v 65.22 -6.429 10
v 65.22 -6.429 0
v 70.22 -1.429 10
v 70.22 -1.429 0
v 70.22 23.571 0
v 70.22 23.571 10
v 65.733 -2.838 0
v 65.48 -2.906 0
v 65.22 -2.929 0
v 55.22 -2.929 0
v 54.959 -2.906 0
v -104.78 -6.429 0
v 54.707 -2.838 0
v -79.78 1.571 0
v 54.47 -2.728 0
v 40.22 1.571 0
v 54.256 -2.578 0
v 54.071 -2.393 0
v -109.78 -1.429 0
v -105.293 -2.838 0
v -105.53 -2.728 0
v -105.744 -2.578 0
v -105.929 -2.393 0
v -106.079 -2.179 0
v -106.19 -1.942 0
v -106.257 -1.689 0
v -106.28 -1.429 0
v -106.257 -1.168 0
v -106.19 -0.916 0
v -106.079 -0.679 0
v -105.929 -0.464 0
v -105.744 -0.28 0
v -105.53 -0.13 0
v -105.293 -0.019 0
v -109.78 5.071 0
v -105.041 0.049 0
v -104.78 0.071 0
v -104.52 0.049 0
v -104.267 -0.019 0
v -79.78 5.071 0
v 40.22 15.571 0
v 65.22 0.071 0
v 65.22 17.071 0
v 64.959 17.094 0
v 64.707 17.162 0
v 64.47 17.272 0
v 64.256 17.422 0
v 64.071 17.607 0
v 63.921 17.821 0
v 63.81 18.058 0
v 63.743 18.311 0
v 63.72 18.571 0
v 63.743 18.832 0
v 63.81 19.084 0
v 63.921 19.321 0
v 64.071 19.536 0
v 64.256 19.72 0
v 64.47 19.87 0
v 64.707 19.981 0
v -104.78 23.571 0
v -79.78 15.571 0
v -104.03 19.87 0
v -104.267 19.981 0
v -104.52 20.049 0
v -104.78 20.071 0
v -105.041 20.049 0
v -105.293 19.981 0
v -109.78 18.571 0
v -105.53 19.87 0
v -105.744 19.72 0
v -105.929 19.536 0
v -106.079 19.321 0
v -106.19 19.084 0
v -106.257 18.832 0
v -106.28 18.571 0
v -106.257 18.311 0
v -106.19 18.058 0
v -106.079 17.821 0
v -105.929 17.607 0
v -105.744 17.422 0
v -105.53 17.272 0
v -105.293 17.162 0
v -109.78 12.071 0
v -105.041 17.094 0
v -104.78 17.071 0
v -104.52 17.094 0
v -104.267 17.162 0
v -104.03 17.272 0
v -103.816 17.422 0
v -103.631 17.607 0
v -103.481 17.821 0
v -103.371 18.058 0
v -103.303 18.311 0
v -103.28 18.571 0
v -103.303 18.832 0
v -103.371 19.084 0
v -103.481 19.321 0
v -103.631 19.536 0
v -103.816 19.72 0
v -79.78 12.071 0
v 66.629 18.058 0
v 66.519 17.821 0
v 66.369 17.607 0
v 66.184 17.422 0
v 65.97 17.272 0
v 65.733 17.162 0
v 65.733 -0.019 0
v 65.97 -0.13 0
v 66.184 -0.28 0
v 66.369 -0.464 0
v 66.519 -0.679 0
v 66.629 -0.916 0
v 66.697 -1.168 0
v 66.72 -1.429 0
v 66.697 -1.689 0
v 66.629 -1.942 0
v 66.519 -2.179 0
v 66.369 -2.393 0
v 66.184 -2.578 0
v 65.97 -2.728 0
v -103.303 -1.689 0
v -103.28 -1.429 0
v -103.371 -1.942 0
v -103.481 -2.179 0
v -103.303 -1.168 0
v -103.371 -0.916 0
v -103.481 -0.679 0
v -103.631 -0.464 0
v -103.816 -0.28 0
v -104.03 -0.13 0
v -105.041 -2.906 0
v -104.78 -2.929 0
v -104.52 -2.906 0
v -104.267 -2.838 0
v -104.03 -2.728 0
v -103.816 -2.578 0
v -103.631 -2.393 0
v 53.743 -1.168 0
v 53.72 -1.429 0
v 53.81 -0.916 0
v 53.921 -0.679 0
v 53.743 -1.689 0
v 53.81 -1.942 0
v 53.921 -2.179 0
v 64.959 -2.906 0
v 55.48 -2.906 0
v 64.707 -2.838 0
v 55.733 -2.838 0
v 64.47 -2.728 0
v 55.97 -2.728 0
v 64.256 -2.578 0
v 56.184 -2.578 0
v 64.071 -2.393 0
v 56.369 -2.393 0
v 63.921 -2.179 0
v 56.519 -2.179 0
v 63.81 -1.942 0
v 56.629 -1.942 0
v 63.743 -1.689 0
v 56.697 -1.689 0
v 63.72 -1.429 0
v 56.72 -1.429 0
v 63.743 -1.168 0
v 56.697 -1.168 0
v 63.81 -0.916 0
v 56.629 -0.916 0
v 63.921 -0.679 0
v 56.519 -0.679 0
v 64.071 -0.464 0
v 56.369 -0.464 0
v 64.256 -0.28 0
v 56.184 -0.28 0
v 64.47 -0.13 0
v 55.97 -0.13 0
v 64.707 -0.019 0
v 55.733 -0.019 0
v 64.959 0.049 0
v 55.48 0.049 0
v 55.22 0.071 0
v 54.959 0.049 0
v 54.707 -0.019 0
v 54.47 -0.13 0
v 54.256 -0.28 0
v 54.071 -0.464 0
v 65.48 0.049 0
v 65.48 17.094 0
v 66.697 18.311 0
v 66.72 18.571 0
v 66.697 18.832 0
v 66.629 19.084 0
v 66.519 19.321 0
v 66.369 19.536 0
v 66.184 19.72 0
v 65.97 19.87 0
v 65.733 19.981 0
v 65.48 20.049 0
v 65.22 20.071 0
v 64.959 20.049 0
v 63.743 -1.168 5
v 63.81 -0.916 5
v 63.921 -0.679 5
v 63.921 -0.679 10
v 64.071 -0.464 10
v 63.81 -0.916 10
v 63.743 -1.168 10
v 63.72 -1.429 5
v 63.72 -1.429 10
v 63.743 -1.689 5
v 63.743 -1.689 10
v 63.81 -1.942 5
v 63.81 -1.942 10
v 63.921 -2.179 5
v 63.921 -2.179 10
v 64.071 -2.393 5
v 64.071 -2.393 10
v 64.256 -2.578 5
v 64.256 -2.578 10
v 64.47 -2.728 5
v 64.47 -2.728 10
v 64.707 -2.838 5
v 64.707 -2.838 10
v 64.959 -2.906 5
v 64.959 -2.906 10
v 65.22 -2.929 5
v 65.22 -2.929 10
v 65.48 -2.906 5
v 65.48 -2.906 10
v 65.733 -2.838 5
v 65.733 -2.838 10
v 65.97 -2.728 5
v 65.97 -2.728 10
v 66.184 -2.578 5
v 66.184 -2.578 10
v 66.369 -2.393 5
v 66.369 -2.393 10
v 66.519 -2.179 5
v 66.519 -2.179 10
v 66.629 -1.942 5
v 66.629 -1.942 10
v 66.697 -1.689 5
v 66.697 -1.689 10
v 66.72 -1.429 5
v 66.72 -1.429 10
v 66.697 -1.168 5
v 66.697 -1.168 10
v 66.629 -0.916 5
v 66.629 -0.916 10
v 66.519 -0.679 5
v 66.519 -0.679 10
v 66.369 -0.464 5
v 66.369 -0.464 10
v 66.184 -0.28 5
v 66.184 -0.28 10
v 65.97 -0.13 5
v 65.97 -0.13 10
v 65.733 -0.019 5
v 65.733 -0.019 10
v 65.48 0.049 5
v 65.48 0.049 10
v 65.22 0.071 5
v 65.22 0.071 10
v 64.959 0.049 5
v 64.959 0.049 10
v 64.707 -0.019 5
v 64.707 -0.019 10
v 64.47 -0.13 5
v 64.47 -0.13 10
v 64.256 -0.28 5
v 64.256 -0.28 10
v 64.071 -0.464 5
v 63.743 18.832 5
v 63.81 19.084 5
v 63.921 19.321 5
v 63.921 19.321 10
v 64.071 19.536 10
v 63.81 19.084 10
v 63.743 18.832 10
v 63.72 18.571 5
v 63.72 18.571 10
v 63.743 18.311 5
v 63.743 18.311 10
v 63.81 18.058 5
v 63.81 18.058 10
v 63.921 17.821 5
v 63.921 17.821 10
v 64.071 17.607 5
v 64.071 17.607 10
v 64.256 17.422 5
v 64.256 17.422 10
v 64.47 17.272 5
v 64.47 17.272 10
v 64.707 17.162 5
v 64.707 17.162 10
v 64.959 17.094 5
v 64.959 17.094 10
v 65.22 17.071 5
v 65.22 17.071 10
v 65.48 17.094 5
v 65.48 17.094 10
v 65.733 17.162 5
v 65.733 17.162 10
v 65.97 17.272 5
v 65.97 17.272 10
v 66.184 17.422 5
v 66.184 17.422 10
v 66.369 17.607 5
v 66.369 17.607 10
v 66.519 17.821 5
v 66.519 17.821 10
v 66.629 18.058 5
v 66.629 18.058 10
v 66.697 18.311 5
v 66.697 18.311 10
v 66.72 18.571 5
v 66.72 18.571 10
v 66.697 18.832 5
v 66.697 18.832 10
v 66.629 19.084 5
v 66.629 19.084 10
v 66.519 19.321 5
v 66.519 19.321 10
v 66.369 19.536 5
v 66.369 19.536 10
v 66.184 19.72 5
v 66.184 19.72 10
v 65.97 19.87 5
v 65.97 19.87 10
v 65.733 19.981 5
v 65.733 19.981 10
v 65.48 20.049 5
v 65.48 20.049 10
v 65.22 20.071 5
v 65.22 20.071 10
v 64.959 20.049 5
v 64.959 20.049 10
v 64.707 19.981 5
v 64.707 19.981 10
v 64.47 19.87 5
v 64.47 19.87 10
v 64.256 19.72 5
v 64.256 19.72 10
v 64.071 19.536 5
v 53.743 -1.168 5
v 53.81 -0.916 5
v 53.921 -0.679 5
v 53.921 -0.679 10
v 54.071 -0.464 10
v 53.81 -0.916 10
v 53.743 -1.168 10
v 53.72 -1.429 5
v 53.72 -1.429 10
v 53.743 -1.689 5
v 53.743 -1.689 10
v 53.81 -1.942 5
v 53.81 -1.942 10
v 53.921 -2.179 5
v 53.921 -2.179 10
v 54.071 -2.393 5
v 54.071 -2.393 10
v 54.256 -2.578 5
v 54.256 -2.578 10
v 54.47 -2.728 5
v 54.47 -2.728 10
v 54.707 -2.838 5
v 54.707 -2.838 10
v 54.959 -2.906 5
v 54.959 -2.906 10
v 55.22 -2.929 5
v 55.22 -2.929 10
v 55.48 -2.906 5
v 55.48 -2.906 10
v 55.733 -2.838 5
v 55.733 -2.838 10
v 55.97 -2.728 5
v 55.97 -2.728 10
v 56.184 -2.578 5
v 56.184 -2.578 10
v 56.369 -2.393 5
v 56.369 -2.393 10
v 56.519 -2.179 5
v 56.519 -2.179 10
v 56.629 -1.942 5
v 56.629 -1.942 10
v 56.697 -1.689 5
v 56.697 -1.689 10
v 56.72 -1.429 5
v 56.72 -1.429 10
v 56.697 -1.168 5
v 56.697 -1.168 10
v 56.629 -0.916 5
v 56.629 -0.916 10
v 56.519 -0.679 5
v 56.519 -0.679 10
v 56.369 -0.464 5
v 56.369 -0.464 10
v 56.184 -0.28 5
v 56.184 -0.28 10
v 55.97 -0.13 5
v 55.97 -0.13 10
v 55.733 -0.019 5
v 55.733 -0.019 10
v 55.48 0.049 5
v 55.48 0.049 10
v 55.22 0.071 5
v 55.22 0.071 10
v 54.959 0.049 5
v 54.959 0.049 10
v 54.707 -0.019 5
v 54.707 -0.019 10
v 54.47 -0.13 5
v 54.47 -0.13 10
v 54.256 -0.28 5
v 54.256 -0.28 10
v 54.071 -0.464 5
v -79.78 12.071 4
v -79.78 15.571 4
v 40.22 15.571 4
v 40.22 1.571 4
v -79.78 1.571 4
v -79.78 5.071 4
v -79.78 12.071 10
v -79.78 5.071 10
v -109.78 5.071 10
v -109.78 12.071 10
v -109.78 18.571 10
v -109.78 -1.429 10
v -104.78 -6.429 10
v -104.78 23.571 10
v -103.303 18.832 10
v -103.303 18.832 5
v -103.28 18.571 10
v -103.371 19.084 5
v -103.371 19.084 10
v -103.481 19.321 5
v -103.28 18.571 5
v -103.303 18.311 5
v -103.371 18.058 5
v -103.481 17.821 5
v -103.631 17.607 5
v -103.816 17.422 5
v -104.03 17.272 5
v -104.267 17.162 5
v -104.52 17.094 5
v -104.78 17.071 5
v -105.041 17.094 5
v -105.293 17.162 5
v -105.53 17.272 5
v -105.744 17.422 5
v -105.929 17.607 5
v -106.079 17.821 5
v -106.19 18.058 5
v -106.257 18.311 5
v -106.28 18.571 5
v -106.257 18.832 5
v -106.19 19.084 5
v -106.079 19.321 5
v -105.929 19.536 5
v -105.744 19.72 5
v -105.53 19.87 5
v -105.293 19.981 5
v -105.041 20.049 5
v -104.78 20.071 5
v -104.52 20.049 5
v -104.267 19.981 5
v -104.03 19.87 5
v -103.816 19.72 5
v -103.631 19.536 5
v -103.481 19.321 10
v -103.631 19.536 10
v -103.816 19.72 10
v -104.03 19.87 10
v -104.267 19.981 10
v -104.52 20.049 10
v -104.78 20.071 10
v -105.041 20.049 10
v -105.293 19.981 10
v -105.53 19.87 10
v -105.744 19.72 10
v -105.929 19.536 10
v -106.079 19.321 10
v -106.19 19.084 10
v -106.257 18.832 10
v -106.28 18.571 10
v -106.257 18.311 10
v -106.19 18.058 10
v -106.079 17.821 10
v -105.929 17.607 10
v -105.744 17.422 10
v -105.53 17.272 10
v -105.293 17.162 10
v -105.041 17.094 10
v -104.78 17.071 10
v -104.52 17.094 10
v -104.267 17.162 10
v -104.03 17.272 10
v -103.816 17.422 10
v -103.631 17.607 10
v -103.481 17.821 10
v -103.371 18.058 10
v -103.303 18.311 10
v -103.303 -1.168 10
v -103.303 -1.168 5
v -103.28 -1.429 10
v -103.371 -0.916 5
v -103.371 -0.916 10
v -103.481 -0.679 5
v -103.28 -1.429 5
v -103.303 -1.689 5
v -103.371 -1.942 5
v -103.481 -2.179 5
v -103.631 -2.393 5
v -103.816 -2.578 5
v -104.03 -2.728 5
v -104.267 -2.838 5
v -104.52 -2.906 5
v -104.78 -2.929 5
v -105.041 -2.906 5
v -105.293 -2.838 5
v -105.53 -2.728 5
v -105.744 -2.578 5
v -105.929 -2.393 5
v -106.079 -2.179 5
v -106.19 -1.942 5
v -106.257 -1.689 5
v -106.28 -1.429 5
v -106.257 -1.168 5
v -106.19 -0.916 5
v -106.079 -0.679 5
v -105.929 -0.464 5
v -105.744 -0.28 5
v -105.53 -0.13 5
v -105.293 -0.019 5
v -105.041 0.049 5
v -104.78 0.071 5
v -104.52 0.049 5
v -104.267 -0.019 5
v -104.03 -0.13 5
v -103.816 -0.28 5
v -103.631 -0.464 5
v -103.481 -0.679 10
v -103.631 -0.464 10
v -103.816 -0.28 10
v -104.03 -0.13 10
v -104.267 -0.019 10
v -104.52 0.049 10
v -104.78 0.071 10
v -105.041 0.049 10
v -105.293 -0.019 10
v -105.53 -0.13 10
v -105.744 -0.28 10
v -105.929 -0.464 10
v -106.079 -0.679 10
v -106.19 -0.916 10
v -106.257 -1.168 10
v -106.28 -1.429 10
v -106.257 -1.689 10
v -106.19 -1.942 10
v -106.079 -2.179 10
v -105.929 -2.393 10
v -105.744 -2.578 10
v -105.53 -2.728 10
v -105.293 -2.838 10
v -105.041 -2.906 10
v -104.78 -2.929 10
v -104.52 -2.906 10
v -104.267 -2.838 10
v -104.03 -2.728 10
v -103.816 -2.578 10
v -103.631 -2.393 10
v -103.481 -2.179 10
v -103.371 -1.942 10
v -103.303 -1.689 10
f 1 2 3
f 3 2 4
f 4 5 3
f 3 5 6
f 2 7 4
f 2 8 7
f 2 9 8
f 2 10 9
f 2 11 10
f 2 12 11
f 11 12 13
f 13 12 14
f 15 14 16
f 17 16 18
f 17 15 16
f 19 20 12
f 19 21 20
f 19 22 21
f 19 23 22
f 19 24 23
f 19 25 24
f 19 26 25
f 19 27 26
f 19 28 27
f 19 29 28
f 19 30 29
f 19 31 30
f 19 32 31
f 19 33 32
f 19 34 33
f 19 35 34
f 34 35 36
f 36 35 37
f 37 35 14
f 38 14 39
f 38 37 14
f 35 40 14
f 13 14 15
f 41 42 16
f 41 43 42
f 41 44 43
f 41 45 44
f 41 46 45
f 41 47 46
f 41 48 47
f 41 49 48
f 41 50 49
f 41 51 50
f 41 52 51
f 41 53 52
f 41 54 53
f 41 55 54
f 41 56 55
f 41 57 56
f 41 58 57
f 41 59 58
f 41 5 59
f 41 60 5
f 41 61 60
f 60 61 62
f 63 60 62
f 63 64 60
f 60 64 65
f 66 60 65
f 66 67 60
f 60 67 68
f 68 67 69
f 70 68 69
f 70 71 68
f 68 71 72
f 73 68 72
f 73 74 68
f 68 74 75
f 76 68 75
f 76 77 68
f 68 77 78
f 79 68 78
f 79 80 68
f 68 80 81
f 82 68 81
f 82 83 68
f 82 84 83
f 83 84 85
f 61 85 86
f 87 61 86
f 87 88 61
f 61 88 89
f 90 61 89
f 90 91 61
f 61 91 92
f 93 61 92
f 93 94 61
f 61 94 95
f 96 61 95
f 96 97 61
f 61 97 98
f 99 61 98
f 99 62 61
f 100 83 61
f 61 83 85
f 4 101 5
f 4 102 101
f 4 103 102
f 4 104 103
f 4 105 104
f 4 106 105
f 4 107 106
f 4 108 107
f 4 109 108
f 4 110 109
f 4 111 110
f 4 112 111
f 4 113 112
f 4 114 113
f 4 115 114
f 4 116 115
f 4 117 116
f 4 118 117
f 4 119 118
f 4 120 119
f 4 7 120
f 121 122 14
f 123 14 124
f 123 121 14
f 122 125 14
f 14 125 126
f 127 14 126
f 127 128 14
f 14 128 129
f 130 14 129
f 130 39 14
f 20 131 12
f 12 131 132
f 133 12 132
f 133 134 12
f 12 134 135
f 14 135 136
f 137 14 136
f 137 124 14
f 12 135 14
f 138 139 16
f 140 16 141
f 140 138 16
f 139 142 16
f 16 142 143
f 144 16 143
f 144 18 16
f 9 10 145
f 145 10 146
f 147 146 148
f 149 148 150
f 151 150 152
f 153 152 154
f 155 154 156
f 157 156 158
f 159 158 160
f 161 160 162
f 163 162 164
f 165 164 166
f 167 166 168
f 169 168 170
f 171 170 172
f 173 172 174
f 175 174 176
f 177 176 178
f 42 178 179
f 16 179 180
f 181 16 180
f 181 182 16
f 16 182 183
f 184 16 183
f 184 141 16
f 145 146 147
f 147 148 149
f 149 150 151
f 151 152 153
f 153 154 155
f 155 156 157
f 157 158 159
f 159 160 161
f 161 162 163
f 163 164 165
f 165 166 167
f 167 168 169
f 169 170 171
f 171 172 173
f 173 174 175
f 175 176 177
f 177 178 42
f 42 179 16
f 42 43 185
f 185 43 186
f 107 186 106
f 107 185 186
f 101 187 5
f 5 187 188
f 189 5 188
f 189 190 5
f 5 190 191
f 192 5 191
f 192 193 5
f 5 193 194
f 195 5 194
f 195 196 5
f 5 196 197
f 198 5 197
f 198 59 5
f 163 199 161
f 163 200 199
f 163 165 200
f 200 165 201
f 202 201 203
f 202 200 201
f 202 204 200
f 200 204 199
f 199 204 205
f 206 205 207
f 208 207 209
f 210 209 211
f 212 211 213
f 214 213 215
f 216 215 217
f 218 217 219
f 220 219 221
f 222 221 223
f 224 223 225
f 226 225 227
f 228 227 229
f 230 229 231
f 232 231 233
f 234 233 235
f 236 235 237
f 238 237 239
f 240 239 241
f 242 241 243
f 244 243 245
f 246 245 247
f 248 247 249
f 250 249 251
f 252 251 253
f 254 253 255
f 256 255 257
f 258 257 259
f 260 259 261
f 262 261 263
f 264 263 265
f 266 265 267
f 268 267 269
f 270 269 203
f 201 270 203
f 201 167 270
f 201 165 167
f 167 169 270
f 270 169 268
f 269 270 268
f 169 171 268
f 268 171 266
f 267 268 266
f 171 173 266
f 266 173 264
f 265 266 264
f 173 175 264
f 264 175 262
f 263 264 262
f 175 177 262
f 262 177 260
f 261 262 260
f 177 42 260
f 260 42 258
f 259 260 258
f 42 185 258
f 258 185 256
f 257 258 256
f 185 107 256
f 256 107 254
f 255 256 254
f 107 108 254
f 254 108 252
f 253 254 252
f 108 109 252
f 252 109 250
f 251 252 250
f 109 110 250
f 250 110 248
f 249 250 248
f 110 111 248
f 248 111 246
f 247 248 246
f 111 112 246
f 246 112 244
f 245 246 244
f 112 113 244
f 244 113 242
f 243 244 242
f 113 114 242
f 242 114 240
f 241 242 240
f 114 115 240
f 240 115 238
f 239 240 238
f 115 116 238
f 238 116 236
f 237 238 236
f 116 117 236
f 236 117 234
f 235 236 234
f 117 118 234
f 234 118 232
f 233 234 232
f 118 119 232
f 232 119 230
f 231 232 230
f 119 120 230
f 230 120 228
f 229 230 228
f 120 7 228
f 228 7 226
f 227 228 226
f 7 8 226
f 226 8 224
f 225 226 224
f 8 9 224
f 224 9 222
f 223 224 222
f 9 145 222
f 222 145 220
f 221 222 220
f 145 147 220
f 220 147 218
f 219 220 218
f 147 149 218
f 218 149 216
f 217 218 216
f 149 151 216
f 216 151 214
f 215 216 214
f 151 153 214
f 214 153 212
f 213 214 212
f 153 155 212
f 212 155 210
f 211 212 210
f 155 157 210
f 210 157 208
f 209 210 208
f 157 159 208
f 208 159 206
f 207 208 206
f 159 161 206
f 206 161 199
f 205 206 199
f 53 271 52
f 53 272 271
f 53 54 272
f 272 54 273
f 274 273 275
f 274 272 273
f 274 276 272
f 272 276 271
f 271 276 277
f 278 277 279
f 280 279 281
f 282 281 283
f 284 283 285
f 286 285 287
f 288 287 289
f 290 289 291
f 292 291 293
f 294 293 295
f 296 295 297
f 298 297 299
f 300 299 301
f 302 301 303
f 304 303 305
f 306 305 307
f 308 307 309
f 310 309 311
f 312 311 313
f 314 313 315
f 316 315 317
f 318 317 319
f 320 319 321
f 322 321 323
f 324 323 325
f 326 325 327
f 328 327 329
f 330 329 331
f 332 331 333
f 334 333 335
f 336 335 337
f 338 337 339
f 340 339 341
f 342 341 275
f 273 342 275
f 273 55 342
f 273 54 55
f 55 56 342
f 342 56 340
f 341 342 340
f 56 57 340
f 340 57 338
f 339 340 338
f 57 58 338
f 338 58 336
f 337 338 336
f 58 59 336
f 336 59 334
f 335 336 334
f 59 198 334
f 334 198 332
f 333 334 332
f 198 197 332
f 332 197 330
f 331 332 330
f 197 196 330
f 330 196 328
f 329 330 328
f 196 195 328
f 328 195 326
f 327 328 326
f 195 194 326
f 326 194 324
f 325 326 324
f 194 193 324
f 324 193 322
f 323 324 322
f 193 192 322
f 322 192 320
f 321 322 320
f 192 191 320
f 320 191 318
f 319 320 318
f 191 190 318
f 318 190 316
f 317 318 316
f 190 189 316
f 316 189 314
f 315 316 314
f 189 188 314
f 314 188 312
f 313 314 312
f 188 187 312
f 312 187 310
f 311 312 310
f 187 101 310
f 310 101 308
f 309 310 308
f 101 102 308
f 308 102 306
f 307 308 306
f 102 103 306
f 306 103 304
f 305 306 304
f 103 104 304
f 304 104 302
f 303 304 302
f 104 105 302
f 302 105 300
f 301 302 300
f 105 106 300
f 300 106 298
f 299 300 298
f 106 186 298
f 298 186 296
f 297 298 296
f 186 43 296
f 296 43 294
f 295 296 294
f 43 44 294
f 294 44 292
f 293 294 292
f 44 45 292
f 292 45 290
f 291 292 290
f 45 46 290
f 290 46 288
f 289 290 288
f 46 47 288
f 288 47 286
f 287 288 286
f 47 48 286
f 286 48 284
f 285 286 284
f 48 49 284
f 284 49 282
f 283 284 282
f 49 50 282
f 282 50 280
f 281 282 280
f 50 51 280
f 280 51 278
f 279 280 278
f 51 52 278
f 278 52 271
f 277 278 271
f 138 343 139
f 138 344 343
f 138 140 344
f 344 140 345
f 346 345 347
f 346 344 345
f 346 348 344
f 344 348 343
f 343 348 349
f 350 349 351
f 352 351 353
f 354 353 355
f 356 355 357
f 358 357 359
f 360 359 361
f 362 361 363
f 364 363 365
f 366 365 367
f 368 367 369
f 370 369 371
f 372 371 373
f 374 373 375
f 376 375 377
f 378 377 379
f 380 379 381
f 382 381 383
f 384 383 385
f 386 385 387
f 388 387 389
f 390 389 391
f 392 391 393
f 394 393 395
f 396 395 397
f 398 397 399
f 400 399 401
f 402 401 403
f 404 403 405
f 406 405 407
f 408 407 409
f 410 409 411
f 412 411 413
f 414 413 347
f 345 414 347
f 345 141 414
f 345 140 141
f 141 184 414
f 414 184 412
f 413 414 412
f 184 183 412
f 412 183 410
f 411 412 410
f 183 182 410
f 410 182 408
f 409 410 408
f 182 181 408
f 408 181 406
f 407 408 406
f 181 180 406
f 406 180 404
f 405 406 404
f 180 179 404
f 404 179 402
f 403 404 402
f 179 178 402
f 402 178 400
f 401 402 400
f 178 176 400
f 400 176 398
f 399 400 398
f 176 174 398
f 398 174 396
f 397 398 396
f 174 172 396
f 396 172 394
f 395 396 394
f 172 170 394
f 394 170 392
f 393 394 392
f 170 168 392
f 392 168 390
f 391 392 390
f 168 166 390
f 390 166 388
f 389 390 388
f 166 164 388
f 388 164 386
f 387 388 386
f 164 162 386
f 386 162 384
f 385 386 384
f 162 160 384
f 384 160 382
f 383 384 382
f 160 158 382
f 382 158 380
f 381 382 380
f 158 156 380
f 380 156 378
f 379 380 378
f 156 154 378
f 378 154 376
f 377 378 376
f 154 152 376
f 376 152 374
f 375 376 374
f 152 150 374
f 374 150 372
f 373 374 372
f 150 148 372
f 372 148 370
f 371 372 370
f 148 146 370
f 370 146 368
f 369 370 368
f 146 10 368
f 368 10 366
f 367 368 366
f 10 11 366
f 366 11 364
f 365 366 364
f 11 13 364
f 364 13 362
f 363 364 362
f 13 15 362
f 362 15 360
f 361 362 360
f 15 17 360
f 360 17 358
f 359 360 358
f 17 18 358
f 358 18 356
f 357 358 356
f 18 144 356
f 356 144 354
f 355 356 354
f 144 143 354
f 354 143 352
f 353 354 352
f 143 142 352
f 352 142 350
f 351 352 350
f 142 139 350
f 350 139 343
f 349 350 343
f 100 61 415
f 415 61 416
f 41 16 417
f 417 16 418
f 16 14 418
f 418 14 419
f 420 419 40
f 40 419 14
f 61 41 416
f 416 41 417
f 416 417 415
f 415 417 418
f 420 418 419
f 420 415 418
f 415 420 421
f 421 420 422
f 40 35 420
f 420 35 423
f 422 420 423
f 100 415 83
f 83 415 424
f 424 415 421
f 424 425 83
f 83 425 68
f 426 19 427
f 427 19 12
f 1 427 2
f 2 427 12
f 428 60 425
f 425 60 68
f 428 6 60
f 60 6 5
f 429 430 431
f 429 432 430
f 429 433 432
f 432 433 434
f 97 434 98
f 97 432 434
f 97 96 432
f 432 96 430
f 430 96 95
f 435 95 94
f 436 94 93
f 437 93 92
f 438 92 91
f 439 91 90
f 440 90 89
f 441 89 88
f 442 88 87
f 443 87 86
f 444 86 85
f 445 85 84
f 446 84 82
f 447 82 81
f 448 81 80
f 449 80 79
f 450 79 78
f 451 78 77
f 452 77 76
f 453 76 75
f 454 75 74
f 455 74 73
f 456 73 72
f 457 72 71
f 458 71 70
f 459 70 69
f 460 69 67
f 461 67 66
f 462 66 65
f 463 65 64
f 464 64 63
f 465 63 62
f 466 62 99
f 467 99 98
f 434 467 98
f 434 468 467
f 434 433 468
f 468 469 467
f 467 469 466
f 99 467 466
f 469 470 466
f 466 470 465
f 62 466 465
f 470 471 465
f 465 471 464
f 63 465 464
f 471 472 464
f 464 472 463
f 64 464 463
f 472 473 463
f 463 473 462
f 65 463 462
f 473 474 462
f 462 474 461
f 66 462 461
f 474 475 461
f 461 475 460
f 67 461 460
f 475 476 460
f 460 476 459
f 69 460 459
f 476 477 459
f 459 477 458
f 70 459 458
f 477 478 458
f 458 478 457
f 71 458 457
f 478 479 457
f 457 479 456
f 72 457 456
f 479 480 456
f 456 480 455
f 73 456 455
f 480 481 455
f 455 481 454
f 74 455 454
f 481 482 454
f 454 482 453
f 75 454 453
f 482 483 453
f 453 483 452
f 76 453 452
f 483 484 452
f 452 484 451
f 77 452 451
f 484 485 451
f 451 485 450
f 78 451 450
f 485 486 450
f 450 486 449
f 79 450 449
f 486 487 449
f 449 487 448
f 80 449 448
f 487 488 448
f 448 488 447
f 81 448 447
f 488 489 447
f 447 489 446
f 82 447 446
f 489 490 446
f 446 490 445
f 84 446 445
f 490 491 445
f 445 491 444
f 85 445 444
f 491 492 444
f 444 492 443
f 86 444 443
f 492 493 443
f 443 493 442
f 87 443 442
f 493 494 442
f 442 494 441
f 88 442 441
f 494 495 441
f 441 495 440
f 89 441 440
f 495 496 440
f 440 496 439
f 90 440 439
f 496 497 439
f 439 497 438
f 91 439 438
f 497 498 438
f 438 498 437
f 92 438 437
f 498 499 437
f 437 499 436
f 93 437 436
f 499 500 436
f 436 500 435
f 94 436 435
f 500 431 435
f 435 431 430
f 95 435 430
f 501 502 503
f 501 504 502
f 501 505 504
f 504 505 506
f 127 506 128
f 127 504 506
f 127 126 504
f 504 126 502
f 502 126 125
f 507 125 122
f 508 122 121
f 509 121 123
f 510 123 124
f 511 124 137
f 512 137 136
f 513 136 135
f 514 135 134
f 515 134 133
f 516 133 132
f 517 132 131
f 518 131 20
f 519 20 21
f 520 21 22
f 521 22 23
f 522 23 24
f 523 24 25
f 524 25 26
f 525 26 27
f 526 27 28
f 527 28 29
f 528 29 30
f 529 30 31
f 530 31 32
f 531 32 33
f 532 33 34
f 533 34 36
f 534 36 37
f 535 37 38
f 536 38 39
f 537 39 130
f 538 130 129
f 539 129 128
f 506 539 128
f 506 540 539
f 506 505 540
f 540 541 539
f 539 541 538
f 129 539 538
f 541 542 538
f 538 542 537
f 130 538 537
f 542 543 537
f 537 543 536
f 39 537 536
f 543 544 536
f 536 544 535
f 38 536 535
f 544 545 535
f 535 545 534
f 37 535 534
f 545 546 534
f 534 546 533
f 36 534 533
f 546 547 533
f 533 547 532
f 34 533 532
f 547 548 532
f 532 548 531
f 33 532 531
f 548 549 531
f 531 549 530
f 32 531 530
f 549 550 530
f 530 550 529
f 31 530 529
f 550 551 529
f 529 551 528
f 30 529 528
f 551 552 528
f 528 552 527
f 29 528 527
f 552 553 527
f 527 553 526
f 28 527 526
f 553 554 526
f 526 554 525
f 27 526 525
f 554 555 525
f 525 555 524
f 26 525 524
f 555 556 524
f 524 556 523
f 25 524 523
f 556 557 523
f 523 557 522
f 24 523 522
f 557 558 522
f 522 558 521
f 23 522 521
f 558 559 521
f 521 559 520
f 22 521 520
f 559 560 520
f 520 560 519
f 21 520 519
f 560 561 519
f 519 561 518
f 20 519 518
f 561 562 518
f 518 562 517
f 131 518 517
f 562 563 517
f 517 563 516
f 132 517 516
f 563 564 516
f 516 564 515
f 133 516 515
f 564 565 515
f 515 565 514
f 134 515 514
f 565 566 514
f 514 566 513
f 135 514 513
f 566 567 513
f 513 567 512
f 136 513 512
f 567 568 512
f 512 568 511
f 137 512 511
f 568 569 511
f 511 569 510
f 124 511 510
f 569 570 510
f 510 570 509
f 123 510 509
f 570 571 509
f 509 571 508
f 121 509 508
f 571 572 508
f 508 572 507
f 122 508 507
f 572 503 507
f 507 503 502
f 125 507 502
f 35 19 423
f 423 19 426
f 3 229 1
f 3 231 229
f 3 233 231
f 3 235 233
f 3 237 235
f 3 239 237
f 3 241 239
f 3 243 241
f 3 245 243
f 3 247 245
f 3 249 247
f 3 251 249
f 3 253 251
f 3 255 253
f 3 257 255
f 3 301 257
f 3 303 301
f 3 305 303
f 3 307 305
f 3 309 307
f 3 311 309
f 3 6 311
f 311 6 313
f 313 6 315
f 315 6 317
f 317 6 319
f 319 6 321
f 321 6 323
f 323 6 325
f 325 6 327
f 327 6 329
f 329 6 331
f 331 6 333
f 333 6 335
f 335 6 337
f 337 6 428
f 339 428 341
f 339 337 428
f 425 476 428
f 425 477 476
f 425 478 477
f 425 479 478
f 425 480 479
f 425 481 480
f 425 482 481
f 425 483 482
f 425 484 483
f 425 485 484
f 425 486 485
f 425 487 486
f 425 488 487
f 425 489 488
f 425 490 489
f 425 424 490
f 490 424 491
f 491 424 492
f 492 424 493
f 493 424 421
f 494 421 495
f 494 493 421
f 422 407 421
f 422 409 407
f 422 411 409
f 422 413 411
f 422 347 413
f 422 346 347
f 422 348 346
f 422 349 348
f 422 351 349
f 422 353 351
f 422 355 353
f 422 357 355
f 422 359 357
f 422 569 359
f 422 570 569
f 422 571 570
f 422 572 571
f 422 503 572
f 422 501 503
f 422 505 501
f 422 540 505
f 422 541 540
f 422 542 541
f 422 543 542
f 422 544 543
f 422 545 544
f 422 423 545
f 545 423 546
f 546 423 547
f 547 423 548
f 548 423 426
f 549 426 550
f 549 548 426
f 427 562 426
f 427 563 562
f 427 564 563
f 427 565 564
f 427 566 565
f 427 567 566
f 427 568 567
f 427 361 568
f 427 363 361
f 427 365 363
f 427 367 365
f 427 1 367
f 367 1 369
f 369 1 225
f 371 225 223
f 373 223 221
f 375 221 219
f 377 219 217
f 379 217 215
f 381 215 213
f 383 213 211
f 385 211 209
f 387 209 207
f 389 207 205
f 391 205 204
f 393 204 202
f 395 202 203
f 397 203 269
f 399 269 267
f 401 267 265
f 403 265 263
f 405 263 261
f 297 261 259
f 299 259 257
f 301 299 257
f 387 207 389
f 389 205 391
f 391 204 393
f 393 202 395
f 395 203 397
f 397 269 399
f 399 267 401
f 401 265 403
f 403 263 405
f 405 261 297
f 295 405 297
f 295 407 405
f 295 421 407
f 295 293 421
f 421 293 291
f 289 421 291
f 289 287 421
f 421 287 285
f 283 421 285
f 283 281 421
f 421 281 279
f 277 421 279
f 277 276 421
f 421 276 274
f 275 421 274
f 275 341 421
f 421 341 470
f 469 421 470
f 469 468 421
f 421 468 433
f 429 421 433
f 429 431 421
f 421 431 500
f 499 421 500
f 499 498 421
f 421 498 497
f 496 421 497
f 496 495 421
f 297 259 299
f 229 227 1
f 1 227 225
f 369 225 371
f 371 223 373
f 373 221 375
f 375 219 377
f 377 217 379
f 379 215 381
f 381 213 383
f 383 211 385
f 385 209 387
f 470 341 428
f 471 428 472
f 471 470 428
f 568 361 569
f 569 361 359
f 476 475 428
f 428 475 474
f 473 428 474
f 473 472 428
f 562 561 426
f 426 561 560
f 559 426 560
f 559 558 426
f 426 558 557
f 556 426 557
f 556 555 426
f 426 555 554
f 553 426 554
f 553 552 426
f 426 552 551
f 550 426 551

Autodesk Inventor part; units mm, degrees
ref_plane "YZ Plane" through (0, 0, 0) normal (1, 0, 0) x (0, 1, 0)
ref_plane "XZ Plane" through (0, 0, 0) normal (0, 1, 0) x (-1, 0, 0)
ref_plane "XY Plane" through (0, 0, 0) normal (0, 0, 1) x (1, 0, 0)
sketch "Sketch1" plane through (0, 0, 0) normal (0, 0, 1) x (1, 0, 0)
  line L0 (-109.7802, 23.5714) -> (70.2198, 23.5714)
  line L1 (70.2198, 23.5714) -> (70.2198, -6.4286)
  line L2 (70.2198, -6.4286) -> (-109.7802, -6.4286)
  line L3 (-109.7802, -6.4286) -> (-109.7802, 23.5714)
  point P0 (0, 0)
  dimension "d0" = 180
  dimension "d1" = 30
extrude "Extrusion1" add sketch "Sketch1" along normal blind 10
sketch "Sketch2" plane through (0, 0, 10) normal (0, 0, 1) x (1, 0, 0)
  line L0 (-109.7802, 23.5714) -> (-109.7802, -6.4286) projected
  line L1 (-109.7802, -6.4286) -> (70.2198, -6.4286) projected
  line L2 (70.2198, 23.5714) -> (-109.7802, 23.5714) projected
  point P0 (0, 0)
  point P1 (-104.7802, 18.5714)
  point P2 (-104.7802, -1.4286)
  dimension "d4" = 5
  dimension "d5" = 5
  dimension "d6" = 5
  dimension "d7" = 5
hole "Hole1" at (-104.7802, 18.5714, 10) at (-104.7802, -1.4286, 10) direction (0, 0, -1) diameter 3 depth 10 tip angle 118
chamfer "Chamfer1" distance 5 angle 45 2 edges at (-109.7802, 23.5714, 5) (-109.7802, -6.4286, 5)
sketch "Sketch3" plane through (0, 0, 0) normal (0, 0, -1) x (-1, 0, 0)
  line L0 (109.7802, 18.5714) -> (109.7802, -1.4286) projected
  line L1 (109.7802, 12.0714) -> (79.7802, 12.0714)
  line L2 (79.7802, 12.0714) -> (79.7802, 5.0714)
  line L3 (79.7802, 5.0714) -> (109.7802, 5.0714)
  line L4 (109.7802, 5.0714) -> (109.7802, 12.0714)
  circle A0 centre (104.7802, 18.5714) radius 1.5 projected
  circle A1 centre (104.7802, -1.4286) radius 1.5 projected
  point P0 (0, 0)
  dimension "d18" = 5
  dimension "d19" = 5
  dimension "d20" = 30
extrude "Extrusion2" cut sketch "Sketch3" against normal blind 10 contours L0 L3 L2 L1
sketch "Sketch4" plane through (0, 0, 0) normal (0, 0, -1) x (-1, 0, 0)
  line L0 (-40.2198, 15.5714) -> (79.7802, 15.5714)
  line L1 (79.7802, 15.5714) -> (79.7802, 1.5714)
  line L2 (79.7802, 1.5714) -> (-40.2198, 1.5714)
  line L3 (-40.2198, 1.5714) -> (-40.2198, 15.5714)
  line L4 (-70.2198, 23.5714) -> (104.7802, 23.5714) projected
  line L5 (-70.2198, -6.4286) -> (104.7802, -6.4286) projected
  line L6 (79.7802, 5.0714) -> (79.7802, 12.0714) projected
  line L7 (-70.2198, 23.5714) -> (-70.2198, -6.4286) projected
  point P0 (0, 0)
  dimension "d23" = 8
  dimension "d24" = 8
  dimension "d25" = 30
extrude "Extrusion3" cut sketch "Sketch4" against normal blind 4
sketch "Sketch5" plane through (0, 0, 0) normal (0, 0, -1) x (-1, 0, 0)
  line L0 (104.7802, 23.5714) -> (-70.2198, 23.5714) projected
  line L1 (-70.2198, -6.4286) -> (104.7802, -6.4286) projected
  line L2 (-70.2198, 23.5714) -> (-70.2198, -6.4286) projected
  point P0 (0, 0)
  point P1 (-65.2198, 18.5714)
  point P2 (-65.2198, -1.4286)
  point P3 (-55.2198, -1.4286)
  dimension "d28" = 5
  dimension "d29" = 5
  dimension "d30" = 5
  dimension "d31" = 5
  dimension "d32" = 5
  dimension "d33" = 10
hole "Hole2" at (65.2198, 18.5714, 0) at (65.2198, -1.4286, 0) at (55.2198, -1.4286, 0) direction (0, 0, 1) diameter 3 depth 10 tip angle 118
chamfer "Chamfer2" distance 5 angle 45 1 edges at (70.2198, -6.4286, 5)
properties part number "Connection Bar"
